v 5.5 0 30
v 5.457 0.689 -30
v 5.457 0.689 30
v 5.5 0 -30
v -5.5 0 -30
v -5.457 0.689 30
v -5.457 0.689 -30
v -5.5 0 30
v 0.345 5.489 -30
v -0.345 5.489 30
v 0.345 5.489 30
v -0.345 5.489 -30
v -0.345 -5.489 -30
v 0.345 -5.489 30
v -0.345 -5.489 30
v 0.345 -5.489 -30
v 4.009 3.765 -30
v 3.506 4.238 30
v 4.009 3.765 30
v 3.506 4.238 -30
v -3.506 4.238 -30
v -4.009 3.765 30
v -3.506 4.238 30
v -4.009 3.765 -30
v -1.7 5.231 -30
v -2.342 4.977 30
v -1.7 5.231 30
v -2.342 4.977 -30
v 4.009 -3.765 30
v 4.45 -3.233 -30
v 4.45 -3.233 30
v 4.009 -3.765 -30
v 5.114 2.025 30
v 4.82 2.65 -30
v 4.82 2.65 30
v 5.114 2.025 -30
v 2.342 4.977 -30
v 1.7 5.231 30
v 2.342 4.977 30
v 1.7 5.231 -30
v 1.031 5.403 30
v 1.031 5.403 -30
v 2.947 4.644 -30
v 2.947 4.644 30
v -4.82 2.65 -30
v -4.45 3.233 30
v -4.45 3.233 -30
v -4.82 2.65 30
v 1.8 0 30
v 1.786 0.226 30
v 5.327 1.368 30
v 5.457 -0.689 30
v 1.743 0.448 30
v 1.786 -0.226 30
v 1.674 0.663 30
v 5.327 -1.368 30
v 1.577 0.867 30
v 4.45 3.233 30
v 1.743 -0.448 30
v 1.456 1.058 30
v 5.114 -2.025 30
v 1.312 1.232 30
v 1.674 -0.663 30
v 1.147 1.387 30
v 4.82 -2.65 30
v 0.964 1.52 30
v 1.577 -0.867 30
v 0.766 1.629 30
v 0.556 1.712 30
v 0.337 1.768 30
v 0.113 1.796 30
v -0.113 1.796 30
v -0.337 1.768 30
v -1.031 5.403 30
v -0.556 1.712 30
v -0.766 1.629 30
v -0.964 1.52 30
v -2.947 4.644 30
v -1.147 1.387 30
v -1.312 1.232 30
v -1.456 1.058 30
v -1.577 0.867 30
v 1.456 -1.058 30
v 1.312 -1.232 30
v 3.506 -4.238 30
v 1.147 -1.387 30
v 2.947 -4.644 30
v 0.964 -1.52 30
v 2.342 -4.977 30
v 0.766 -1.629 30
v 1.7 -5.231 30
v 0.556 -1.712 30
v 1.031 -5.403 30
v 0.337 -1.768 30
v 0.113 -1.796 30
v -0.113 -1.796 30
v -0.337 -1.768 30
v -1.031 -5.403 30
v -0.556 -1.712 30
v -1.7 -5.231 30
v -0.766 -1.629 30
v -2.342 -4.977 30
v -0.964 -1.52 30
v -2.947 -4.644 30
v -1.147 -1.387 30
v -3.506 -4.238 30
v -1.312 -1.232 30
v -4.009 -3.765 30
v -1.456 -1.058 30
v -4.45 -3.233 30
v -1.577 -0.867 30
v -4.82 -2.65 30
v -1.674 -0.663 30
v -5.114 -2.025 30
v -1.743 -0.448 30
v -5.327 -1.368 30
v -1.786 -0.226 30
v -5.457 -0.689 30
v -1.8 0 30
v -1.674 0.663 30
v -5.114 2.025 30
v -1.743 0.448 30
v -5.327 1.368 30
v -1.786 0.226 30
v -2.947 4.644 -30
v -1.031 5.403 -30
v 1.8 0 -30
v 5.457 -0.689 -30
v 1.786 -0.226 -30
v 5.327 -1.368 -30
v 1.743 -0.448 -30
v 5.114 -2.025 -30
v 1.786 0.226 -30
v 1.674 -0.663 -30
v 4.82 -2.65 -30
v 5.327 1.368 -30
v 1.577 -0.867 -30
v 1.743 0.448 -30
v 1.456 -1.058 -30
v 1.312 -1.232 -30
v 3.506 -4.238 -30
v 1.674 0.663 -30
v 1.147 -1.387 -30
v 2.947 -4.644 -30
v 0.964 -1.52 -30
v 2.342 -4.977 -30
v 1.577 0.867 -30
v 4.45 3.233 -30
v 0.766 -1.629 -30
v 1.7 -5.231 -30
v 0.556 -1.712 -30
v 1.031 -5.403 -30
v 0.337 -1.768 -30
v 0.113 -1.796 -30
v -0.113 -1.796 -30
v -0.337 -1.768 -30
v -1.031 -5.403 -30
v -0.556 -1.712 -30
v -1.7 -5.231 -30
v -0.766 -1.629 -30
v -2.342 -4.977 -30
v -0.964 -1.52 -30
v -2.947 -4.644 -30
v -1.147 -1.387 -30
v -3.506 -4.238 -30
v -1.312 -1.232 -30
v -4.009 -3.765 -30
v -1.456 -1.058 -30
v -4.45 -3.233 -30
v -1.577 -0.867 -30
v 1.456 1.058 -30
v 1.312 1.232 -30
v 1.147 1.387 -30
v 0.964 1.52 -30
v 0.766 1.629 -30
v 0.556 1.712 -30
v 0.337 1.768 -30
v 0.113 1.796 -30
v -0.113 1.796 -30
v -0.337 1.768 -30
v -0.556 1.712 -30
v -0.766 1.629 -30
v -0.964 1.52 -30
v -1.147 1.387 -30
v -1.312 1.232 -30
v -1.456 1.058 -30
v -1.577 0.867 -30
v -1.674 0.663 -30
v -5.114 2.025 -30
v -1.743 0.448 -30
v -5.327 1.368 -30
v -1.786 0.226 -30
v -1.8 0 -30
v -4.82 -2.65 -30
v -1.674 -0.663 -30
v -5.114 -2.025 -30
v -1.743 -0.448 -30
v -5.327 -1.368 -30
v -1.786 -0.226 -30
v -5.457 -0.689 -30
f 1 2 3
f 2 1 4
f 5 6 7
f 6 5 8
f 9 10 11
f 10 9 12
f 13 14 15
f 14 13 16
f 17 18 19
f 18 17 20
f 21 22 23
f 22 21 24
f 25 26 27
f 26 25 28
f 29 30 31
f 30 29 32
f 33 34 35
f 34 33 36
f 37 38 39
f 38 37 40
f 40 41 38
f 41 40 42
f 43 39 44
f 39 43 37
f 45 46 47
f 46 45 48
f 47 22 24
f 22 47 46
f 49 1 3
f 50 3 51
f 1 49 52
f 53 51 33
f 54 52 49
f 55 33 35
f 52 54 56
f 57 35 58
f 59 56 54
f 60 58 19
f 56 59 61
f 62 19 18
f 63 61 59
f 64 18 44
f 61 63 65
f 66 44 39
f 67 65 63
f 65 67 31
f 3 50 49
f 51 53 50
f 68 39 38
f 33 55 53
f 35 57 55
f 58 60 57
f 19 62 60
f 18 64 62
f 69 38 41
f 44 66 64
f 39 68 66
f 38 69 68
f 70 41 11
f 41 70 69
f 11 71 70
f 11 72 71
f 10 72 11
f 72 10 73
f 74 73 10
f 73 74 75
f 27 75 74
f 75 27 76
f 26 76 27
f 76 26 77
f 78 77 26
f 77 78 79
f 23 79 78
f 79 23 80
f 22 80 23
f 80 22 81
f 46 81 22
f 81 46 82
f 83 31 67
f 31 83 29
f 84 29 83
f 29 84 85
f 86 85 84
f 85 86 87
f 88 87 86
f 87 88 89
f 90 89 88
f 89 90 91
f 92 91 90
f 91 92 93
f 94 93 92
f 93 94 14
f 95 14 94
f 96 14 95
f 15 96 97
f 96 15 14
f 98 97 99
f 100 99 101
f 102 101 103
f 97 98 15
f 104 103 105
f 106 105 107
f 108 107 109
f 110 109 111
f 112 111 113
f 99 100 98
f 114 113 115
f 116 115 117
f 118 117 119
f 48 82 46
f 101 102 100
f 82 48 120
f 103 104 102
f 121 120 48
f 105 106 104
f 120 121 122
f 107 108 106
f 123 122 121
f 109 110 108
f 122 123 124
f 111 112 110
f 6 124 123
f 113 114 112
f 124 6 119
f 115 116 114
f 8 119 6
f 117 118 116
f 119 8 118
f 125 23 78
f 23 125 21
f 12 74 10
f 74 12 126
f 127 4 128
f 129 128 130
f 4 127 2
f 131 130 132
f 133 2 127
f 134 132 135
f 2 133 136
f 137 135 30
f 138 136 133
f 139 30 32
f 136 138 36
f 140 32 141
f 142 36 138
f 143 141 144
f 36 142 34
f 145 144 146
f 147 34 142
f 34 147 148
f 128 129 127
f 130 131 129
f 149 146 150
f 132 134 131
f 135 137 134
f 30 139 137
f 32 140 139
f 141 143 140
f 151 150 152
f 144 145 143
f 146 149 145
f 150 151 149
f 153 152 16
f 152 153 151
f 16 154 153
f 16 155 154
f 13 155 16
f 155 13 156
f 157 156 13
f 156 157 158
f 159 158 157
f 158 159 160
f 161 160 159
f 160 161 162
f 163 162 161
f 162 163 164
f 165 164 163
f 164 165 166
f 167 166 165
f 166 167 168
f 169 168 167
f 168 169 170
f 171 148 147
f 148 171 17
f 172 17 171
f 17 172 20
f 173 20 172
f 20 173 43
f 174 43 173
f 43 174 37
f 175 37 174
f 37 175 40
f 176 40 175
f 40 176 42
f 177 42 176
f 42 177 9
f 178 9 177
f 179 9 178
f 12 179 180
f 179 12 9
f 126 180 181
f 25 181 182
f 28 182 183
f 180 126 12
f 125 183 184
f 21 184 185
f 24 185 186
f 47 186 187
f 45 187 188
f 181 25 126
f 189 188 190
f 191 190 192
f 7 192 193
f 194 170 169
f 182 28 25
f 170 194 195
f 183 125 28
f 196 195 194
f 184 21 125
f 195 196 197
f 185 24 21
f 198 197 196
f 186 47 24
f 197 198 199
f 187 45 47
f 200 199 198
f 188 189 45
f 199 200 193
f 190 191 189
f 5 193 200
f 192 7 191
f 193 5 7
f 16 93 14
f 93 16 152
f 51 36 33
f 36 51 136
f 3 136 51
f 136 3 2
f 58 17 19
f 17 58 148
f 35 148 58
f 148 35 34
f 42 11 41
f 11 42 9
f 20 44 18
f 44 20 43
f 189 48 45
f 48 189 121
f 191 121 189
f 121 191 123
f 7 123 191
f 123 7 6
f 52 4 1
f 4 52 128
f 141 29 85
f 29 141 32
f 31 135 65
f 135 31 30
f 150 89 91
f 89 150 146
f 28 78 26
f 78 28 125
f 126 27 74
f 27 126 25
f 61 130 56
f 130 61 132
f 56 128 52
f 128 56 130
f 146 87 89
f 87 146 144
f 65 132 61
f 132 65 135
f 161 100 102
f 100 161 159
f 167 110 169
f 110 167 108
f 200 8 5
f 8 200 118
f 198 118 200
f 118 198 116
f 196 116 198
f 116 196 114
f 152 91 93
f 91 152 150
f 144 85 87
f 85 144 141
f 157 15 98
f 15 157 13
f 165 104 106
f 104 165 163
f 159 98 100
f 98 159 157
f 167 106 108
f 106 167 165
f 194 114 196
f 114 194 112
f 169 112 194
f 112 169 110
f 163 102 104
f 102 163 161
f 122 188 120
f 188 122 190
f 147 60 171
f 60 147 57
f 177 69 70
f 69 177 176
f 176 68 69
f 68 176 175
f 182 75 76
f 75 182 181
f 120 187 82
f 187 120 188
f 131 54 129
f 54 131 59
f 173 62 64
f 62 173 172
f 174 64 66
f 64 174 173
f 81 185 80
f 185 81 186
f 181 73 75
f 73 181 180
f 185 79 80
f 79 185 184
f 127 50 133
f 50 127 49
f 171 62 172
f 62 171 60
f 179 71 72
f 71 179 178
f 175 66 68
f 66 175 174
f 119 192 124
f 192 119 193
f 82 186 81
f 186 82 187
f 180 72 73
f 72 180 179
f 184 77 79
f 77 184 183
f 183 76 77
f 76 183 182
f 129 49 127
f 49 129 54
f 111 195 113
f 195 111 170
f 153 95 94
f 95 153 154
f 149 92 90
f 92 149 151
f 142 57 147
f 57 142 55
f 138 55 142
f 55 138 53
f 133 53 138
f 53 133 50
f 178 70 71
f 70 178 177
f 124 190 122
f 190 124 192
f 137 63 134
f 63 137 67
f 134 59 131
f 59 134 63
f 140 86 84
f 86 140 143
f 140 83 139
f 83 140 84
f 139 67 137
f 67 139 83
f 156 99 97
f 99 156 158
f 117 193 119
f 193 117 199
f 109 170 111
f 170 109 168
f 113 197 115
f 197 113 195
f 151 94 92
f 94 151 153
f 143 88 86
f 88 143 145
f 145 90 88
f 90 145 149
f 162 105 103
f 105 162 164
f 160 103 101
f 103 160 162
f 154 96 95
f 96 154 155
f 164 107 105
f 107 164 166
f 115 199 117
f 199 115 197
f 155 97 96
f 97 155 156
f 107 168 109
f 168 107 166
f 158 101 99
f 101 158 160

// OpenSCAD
$fn = 50;


difference() {
	union() {
		translate(v = [0, 0, -30.0000000000]) {
			cylinder(h = 60, r = 5.5000000000);
		}
	}
	union() {
		translate(v = [0, 0, -100.0000000000]) {
			cylinder(h = 200, r = 1.8000000000);
		}
	}
}
